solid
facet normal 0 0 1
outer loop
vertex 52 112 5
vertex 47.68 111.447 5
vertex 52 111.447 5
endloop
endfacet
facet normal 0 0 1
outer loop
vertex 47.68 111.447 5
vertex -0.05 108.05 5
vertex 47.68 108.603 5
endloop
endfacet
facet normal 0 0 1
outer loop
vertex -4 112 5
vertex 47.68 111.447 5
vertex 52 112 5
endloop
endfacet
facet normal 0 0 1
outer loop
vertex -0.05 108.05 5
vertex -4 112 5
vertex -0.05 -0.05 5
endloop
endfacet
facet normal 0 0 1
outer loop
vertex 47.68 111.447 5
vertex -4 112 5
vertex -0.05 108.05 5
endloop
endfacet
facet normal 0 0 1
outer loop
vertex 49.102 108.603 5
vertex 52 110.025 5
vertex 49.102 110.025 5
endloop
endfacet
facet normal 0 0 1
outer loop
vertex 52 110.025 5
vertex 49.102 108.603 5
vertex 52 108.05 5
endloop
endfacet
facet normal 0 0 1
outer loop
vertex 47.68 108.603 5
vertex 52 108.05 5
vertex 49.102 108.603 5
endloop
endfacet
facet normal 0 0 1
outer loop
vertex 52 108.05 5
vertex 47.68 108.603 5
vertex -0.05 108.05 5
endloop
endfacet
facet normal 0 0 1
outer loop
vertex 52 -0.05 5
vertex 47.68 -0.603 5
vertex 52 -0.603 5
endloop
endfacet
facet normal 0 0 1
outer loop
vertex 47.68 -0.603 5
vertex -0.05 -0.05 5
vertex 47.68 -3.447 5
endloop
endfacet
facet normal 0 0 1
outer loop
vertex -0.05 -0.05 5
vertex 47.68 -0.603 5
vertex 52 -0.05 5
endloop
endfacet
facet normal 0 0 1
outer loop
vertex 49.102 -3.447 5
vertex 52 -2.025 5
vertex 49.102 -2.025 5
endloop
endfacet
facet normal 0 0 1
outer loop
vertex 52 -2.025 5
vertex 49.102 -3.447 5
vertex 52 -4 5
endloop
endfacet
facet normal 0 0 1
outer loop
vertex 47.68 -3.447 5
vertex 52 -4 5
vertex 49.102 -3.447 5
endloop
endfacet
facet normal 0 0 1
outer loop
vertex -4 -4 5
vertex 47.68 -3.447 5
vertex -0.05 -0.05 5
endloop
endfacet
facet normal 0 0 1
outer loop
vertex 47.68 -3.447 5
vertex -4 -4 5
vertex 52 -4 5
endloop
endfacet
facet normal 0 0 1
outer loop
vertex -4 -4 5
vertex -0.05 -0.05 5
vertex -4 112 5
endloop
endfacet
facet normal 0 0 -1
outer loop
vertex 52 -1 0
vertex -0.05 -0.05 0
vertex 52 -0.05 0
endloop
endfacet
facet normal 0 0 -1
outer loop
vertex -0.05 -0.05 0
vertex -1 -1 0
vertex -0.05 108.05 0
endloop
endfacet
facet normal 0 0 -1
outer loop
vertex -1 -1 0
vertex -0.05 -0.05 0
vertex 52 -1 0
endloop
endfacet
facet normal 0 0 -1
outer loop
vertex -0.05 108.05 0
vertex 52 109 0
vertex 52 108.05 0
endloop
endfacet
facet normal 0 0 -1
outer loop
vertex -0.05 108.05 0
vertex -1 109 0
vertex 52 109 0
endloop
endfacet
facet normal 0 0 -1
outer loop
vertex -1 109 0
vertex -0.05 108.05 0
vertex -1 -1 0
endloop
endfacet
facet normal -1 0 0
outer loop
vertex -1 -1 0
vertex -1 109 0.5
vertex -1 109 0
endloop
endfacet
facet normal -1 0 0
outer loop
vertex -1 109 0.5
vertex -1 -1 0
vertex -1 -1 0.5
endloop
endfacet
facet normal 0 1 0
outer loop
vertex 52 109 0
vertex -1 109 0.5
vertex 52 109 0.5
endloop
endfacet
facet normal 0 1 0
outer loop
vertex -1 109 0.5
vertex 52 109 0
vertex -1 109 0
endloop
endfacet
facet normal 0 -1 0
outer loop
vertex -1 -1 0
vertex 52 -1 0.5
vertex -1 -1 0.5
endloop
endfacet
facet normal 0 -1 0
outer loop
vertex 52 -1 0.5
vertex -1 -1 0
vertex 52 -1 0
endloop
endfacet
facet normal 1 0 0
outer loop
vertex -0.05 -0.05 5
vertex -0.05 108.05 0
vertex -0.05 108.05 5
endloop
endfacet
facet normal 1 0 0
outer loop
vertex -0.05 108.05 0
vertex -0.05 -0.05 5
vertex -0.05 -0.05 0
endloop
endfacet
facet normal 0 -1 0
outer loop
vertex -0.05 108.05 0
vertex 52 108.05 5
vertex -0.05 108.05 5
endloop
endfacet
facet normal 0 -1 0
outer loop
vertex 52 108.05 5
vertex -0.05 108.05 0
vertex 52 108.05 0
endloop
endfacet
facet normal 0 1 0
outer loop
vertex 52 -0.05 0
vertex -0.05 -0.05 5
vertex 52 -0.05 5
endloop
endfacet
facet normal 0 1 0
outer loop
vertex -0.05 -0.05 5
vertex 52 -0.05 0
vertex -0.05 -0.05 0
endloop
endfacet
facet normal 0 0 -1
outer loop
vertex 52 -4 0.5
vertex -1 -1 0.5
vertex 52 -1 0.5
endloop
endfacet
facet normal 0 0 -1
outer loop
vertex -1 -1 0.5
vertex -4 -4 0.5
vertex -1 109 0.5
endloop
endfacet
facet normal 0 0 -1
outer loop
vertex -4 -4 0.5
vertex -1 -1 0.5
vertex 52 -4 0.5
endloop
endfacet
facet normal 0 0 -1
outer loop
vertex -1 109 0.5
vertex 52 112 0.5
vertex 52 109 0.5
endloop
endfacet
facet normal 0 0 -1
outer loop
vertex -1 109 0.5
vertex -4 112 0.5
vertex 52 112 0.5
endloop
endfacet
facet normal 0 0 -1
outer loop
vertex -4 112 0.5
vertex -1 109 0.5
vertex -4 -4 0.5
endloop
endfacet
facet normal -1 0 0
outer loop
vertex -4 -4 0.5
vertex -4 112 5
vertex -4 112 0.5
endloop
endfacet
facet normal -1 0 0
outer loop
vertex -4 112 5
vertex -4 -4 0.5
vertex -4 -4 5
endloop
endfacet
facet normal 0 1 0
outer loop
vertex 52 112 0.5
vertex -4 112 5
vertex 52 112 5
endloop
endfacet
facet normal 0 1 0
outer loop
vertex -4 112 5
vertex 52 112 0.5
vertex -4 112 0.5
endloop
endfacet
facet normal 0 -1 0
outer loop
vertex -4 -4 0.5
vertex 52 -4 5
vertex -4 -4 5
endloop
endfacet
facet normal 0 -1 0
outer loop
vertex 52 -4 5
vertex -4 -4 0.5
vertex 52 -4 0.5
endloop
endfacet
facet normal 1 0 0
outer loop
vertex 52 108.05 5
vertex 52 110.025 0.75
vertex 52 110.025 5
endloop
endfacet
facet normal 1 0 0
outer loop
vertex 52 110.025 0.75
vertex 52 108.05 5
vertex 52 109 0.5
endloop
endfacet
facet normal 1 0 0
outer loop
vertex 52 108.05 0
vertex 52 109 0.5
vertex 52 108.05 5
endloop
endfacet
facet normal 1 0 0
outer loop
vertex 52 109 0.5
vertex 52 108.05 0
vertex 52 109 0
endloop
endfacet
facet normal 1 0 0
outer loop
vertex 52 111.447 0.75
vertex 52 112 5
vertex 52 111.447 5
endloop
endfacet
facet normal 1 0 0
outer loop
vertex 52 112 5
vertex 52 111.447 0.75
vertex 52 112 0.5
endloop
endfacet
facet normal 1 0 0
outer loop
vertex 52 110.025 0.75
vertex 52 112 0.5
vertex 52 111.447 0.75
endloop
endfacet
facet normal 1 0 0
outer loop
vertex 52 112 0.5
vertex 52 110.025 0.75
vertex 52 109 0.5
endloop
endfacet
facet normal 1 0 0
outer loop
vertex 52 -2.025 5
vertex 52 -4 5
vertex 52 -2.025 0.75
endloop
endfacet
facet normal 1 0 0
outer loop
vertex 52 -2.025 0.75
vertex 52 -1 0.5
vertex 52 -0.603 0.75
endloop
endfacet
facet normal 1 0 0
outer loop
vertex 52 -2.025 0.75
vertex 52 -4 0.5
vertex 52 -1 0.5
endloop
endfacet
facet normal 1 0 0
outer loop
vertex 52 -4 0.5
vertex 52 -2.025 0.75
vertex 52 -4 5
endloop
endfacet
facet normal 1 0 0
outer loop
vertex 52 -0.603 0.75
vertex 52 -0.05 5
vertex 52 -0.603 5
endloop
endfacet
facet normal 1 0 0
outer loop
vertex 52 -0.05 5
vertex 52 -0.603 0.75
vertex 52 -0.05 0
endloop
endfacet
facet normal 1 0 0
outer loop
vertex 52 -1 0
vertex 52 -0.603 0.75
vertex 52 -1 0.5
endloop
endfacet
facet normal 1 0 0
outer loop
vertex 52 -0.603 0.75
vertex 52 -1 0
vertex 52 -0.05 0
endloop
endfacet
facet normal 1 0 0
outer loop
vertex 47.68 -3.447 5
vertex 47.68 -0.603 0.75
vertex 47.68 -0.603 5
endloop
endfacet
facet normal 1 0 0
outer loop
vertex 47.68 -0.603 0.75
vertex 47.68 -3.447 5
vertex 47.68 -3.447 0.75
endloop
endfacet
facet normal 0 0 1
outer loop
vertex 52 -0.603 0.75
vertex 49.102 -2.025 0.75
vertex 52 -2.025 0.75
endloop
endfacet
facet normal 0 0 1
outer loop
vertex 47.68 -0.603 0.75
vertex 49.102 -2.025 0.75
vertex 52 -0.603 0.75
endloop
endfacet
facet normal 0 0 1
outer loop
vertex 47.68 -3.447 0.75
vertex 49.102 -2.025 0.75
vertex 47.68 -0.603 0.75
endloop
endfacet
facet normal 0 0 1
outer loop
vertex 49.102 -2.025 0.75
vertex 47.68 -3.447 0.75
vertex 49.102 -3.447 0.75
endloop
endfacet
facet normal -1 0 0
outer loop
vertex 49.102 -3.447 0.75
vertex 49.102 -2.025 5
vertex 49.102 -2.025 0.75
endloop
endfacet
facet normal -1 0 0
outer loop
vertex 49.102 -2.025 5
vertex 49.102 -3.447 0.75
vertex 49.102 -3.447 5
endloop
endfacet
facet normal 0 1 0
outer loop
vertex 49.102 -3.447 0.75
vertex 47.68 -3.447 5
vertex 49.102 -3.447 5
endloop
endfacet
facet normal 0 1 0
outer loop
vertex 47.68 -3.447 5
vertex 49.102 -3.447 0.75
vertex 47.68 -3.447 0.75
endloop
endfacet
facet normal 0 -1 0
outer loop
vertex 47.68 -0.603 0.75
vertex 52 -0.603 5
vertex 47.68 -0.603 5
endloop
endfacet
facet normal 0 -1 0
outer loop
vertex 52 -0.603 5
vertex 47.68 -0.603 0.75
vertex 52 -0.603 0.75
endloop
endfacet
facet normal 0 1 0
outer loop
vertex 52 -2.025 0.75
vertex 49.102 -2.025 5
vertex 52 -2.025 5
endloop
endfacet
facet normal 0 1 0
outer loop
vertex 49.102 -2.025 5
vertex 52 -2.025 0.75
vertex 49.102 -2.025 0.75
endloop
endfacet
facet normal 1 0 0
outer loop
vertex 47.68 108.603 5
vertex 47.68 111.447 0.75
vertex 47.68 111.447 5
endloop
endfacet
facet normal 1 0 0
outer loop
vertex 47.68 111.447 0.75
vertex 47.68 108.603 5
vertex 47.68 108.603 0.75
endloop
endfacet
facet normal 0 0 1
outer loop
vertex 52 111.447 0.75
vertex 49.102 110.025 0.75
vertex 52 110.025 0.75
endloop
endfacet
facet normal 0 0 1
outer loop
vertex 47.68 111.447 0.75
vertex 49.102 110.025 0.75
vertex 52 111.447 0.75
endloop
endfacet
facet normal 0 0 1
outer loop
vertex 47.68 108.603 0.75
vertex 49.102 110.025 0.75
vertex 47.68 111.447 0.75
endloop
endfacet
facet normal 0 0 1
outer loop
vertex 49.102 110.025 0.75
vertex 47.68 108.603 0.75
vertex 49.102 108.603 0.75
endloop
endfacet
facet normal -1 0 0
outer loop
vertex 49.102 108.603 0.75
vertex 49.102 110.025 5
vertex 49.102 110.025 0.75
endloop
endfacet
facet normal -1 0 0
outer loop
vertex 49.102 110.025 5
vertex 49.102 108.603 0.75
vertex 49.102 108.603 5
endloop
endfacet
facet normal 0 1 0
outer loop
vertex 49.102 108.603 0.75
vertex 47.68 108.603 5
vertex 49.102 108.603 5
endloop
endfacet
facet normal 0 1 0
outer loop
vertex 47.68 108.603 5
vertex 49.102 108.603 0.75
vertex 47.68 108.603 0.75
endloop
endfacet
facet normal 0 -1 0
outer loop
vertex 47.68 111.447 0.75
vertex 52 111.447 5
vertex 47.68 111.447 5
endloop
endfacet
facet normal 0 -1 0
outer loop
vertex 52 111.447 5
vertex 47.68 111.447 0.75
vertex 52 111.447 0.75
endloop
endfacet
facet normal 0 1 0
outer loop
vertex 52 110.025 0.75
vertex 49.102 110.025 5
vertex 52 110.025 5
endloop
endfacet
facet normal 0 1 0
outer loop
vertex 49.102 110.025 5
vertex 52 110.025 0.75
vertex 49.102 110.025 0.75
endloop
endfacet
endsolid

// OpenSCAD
// Generated by SolidPython 1.0.4 on 2020-12-18 11:25:16


difference() {
	difference() {
		difference() {
			union() {
				difference() {
					translate(v = [-1.0000000000, -1.0000000000, 0]) {
						cube(size = [74.0000000000, 110.0000000000, 5]);
					}
					translate(v = [-0.0500000000, -0.0500000000, 0]) {
						cube(size = [72.1000000000, 108.1000000000, 5]);
					}
				}
				translate(v = [0, 0, 0.5000000000]) {
					difference() {
						translate(v = [-4.0000000000, -4.0000000000, 0]) {
							cube(size = [80.0000000000, 116.0000000000, 4.5000000000]);
						}
						translate(v = [-1.0000000000, -1.0000000000, 0]) {
							cube(size = [74.0000000000, 110.0000000000, 4.5000000000]);
						}
					}
				}
			}
			translate(v = [52.0000000000, -4.0000000000, 0]) {
				cube(size = [24.0000000000, 116.0000000000, 5]);
			}
		}
		translate(v = [47.6800000000, -3.4470000000, 0]) {
			translate(v = [0, 0, 0.7500000000]) {
				scale(v = [1.0800000000, 1.0800000000, 1]) {
					translate(v = [4, 2.6333333333, 0]) {
						rotate(a = -180) {
							union() {
								translate(v = [2.6833333333, 0, 0]) {
									cube(size = [1.3166666667, 2.6333333333, 4.2500000000]);
								}
								cube(size = [4, 1.3166666667, 4.2500000000]);
							}
						}
					}
				}
			}
		}
	}
	translate(v = [47.6800000000, 108.6030000000, 0]) {
		translate(v = [0, 0, 0.7500000000]) {
			scale(v = [1.0800000000, 1.0800000000, 1]) {
				translate(v = [4, 2.6333333333, 0]) {
					rotate(a = -180) {
						union() {
							translate(v = [2.6833333333, 0, 0]) {
								cube(size = [1.3166666667, 2.6333333333, 4.2500000000]);
							}
							cube(size = [4, 1.3166666667, 4.2500000000]);
						}
					}
				}
			}
		}
	}
}
